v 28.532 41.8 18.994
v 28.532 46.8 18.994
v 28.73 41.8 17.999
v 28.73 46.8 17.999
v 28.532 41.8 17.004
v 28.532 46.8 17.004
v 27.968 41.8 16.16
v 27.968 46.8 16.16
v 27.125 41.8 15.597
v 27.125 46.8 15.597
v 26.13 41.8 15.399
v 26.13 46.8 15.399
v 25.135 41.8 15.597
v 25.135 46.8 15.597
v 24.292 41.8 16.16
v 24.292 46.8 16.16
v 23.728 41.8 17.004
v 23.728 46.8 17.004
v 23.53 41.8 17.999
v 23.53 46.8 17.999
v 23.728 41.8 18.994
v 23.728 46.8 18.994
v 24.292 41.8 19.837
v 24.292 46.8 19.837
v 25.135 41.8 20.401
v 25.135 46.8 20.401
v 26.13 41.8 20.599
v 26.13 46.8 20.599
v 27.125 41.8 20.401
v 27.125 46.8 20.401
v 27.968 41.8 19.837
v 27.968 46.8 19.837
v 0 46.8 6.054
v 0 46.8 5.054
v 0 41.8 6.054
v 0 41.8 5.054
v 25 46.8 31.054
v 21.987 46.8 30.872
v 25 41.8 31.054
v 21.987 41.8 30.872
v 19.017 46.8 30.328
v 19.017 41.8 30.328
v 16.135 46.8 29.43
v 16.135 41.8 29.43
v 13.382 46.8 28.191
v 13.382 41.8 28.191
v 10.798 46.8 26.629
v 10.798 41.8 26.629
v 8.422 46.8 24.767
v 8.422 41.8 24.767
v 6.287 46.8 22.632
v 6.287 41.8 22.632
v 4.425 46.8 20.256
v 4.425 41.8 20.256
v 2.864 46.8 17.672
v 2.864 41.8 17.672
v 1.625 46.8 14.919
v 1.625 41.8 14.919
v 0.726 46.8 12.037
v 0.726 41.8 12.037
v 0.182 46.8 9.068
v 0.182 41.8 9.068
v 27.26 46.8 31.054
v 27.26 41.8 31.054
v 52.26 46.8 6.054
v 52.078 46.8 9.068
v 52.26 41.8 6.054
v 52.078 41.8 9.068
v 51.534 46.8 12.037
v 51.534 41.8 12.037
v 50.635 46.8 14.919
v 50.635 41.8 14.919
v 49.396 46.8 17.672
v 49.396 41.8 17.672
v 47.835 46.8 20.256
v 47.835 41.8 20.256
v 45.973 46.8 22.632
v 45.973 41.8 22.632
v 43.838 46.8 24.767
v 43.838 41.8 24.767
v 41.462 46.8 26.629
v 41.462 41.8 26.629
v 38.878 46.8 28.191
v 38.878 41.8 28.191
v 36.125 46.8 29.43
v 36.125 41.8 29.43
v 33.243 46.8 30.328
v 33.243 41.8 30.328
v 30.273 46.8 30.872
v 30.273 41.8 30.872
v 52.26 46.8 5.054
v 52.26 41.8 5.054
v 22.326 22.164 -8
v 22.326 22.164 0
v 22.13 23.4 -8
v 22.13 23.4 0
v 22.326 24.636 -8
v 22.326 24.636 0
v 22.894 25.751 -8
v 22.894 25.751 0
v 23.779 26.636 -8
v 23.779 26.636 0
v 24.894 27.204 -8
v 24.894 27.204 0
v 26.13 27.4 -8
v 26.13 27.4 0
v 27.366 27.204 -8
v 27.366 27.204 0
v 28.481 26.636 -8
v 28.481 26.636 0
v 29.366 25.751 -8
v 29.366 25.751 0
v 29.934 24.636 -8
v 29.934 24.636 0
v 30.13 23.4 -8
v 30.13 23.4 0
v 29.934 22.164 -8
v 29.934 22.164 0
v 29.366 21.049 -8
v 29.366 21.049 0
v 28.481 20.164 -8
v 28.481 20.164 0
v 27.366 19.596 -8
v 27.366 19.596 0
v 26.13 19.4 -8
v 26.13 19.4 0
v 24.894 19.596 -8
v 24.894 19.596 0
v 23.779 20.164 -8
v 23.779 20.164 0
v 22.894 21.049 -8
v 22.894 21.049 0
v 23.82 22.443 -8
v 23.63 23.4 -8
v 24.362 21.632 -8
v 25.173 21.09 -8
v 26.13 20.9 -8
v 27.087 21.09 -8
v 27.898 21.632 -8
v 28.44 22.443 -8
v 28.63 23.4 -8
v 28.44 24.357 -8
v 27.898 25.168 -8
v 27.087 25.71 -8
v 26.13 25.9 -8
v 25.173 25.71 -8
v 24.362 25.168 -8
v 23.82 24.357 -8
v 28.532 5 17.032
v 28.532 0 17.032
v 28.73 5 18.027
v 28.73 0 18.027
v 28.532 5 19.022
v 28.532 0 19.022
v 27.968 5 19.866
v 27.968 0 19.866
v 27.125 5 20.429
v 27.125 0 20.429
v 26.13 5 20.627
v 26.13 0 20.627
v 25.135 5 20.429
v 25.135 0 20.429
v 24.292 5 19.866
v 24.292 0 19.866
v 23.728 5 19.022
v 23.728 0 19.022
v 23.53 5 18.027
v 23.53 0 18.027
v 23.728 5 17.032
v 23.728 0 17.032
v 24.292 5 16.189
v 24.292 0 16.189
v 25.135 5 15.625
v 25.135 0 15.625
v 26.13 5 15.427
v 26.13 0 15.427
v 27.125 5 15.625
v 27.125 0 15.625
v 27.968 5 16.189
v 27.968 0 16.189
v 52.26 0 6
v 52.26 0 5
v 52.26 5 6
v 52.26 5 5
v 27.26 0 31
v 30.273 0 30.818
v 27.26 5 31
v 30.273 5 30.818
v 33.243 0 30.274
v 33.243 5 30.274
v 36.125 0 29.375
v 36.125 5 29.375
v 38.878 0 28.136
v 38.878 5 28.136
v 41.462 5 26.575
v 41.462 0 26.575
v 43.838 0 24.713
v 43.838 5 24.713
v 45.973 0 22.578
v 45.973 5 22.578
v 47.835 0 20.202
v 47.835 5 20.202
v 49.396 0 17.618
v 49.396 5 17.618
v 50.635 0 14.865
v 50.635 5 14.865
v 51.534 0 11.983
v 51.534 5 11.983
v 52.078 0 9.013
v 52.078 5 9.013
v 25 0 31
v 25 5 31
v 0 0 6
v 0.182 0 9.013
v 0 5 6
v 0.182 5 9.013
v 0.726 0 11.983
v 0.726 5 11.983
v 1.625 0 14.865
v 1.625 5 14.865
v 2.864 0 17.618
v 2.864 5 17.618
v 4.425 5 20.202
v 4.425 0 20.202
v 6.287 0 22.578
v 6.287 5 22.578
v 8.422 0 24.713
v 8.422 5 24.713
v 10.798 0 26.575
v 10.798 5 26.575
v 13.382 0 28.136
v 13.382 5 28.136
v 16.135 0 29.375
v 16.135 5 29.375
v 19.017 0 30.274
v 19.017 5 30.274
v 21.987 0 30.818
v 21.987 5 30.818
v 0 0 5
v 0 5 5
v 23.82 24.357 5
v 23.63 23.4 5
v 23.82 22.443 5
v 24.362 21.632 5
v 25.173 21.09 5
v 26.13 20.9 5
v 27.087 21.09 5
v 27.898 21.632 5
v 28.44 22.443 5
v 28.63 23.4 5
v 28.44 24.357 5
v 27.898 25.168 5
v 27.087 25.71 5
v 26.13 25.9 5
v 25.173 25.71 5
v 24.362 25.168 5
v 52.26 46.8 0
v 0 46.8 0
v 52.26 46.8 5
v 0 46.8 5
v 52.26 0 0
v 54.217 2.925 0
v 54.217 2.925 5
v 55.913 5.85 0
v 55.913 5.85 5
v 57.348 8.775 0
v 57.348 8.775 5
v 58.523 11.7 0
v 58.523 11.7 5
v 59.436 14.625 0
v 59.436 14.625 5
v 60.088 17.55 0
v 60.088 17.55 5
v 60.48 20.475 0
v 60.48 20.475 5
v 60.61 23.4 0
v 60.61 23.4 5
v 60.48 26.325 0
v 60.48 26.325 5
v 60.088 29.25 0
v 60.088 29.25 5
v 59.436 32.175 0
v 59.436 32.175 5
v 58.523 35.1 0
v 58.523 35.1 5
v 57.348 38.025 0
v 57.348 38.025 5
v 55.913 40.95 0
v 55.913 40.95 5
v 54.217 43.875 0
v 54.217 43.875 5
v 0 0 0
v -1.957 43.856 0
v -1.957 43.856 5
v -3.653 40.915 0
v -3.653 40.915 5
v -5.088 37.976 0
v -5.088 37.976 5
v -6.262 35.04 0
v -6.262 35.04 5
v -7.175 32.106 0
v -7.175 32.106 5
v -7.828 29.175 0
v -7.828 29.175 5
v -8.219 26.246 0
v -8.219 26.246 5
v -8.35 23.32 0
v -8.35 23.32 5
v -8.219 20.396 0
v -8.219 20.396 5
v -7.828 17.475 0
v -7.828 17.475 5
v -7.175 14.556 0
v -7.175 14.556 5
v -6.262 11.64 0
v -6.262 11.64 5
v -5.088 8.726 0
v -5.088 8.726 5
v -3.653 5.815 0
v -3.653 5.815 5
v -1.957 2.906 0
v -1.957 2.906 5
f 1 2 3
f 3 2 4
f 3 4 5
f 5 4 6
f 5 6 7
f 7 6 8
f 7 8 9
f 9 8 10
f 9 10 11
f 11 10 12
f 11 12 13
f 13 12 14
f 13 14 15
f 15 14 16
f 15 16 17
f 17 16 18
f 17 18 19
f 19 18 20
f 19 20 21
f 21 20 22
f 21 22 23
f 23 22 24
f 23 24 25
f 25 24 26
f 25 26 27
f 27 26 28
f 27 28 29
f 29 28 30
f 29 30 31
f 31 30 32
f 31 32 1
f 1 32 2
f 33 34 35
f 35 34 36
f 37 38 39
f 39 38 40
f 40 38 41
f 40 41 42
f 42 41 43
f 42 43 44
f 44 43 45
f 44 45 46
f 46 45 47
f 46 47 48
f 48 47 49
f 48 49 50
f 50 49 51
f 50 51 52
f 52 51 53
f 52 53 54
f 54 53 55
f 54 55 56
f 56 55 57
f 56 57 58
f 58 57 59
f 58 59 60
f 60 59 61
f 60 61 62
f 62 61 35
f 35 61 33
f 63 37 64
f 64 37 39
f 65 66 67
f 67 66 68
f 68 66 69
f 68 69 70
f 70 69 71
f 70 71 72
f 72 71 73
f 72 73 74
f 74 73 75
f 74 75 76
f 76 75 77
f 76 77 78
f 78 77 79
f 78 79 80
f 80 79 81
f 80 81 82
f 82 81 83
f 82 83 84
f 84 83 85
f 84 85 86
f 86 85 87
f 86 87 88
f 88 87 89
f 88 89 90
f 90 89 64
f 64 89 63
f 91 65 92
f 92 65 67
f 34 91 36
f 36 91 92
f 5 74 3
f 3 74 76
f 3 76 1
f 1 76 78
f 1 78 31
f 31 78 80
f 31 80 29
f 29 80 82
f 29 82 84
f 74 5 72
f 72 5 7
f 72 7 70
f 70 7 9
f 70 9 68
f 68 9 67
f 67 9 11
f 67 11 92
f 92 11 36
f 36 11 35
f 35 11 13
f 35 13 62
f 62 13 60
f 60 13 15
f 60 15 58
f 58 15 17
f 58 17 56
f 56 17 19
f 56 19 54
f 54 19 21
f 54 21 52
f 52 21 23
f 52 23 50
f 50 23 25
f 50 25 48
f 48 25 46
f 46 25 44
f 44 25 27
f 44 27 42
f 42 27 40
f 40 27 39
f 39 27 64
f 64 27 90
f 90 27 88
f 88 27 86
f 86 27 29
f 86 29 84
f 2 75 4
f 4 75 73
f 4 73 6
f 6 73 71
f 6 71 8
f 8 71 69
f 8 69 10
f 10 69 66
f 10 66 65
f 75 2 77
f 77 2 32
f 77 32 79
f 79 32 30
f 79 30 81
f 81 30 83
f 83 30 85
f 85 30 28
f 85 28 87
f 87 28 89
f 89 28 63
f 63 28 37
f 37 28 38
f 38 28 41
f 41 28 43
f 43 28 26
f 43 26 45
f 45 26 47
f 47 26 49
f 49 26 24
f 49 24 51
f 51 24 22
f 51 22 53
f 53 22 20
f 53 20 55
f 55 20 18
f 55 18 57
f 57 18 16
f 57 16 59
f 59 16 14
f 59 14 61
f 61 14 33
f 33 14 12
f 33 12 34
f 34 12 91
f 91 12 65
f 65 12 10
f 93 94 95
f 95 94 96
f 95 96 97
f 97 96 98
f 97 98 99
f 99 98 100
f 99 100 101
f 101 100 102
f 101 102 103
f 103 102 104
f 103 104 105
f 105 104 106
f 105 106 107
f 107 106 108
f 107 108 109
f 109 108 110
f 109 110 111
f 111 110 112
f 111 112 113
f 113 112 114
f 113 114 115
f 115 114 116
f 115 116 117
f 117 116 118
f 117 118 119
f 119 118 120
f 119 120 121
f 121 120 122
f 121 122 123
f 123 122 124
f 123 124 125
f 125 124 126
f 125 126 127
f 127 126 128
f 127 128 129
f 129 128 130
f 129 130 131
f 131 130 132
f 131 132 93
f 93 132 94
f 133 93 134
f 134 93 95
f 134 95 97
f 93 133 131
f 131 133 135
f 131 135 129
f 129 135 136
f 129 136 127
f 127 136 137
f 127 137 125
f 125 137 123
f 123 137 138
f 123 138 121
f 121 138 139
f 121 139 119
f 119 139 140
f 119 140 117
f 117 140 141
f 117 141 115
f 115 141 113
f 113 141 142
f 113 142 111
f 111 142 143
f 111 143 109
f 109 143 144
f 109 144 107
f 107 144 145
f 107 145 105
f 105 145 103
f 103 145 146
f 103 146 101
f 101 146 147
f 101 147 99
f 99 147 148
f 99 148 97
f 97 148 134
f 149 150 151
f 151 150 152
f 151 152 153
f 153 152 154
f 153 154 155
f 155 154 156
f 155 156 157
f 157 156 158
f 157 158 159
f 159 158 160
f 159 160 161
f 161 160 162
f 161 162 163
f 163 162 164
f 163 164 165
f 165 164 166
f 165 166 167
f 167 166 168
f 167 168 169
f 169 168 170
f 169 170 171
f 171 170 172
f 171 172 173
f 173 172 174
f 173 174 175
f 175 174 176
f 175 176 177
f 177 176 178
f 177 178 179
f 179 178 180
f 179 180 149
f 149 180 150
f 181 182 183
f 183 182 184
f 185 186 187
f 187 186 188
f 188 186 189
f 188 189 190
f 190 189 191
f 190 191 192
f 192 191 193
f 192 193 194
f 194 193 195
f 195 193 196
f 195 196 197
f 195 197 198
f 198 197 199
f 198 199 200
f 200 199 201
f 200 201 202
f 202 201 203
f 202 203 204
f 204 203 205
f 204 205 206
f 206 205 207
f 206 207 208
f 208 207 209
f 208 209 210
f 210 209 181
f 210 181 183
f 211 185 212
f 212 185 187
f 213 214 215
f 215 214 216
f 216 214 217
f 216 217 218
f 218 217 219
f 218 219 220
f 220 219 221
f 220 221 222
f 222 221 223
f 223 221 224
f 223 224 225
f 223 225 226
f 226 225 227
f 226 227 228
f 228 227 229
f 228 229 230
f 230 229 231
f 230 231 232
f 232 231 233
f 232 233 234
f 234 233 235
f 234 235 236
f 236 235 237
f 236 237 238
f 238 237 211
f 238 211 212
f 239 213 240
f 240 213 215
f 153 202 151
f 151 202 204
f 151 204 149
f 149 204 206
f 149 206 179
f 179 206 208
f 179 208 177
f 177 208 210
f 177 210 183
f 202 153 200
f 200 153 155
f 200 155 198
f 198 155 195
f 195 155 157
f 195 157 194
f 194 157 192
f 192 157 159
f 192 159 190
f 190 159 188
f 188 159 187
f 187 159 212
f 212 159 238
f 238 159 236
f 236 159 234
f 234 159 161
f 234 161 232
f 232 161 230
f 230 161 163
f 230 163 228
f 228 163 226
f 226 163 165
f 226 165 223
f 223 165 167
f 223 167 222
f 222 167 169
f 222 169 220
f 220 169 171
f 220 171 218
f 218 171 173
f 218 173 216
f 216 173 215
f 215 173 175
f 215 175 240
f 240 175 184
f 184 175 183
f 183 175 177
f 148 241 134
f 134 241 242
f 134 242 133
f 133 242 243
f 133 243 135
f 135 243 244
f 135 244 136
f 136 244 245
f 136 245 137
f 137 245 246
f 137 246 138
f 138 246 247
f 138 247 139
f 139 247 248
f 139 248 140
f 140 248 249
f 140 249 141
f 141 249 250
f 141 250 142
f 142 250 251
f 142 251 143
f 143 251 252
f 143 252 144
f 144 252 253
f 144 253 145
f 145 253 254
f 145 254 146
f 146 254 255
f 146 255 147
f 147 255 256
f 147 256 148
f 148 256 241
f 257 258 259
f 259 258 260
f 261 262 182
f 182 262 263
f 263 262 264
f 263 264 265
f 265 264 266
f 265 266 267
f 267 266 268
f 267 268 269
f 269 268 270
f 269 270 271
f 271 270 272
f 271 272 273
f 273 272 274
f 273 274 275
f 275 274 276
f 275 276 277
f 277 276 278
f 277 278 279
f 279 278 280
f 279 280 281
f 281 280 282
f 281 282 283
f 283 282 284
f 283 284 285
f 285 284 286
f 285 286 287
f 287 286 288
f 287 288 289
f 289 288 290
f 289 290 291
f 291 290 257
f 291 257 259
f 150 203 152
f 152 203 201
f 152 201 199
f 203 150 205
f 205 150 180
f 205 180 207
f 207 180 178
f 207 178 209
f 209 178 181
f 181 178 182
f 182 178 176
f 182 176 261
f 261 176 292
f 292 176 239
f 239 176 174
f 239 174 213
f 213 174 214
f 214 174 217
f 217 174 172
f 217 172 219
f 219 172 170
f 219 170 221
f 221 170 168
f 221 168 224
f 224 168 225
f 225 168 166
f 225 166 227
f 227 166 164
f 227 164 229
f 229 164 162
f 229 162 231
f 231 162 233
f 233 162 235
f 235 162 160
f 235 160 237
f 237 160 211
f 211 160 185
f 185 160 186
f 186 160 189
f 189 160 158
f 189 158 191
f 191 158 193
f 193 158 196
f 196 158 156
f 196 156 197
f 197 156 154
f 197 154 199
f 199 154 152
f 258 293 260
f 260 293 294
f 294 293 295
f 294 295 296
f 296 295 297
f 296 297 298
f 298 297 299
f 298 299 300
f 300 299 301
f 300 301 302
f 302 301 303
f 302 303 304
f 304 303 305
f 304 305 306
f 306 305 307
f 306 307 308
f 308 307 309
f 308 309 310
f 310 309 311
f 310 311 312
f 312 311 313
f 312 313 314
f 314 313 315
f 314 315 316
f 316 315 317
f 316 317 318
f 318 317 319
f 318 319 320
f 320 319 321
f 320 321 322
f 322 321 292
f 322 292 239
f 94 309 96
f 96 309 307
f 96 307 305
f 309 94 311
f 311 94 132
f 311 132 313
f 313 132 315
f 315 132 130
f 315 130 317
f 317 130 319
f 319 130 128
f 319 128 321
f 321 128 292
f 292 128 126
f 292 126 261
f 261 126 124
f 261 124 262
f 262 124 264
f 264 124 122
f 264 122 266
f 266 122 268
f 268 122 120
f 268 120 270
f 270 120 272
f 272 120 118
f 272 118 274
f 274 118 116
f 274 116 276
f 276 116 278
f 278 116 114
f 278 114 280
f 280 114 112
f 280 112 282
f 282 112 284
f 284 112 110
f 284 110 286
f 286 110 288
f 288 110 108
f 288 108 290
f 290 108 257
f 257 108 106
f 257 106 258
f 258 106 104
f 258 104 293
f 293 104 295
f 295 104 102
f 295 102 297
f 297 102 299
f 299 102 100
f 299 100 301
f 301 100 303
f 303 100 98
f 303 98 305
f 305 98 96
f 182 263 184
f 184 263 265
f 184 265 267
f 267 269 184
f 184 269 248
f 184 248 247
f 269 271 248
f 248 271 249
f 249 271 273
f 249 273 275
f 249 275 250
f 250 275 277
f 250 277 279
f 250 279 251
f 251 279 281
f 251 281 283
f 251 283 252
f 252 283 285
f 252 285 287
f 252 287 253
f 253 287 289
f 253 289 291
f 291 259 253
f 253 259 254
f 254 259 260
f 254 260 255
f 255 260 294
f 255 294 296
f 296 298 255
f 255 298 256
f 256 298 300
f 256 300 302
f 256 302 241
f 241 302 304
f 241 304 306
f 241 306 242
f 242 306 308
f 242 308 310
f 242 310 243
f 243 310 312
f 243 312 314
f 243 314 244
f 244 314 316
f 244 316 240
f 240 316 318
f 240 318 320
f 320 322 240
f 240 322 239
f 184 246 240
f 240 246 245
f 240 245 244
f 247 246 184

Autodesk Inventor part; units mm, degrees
ref_plane "YZ Plane" through (0, 0, 0) normal (1, 0, 0) x (0, 1, 0)
ref_plane "XZ Plane" through (0, 0, 0) normal (0, 1, 0) x (-1, 0, 0)
ref_plane "XY Plane" through (0, 0, 0) normal (0, 0, 1) x (1, 0, 0)
sketch "Esquisse1" plane through (0, 0, 0) normal (0, 0, 1) x (1, 0, 0)
  line L0 (52.26, 46.8) -> (0, 46.8)
  line L1 (0, 0) -> (-16.6992, 23.2396) construction
  line L2 (-16.6992, 23.2396) -> (0, 46.8) construction
  spline S0 degree 2 poles (0, 0) (-16.6992, 23.2396) (0, 46.8) knots 1 1 1 2 2 2
  line L3 (52.26, 46.8) -> (68.96, 23.4) construction
  line L4 (68.96, 23.4) -> (52.26, 0) construction
  spline S1 degree 2 poles (52.26, 46.8) (68.96, 23.4) (52.26, 0) knots 1 1 1 2 2 2
  line L5 (0, 0) -> (52.26, 0)
  point P0 (0, 23.4)
  point P1 (52.26, 23.4)
  point P2 (68.96, 23.4)
  dimension "d0" = 46.8
  dimension "d2" = 16.7
  dimension "d3" = 16.7
extrude "Extrusion1" add sketch "Esquisse1" along normal blind 5
sketch "Esquisse2" plane through (0, 0, 5) normal (0, 0, 1) x (1, 0, 0)
  line L0 (52.26, 46.8) -> (0, 46.8) projected
  line L1 (0, 46.8) -> (52.26, 0)
  line L2 (52.26, 46.8) -> (0, 0)
  circle A0 centre (26.13, 23.4) radius 2.5
  dimension "d6" = 5
extrude "Extrusion2" cut sketch "Esquisse2" against normal blind 5 contours A0 L1 L2 | L2 L1 A0 | L1 L2 A0 | L1 A0 L2
sketch "Esquisse3" plane through (0, 0, 0) normal (0, -1, 0) x (1, 0, 0)
  line L0 (52.26, 5) -> (0, 5) projected
  line L1 (0, 5) -> (52.26, 5)
  line L2 (52.26, 5) -> (52.26, 6)
  line L3 (27.26, 31) -> (25, 31)
  line L4 (0, 6) -> (0, 5)
  arc A0 (25, 31) -> (0, 6) centre (25, 6) ccw
  arc A1 (52.26, 6) -> (27.26, 31) centre (27.26, 6) ccw
  line L5 (0, 5) -> (52.26, 5) projected
  point P0 (0, 0)
  dimension "d10" = 25
  dimension "d11" = 25
  dimension "d12" = 52.26
extrude "Extrusion3" add sketch "Esquisse3" against normal blind 5
sketch "Esquisse5" plane through (0, 46.8, 0) normal (0, 1, 0) x (1, 0, 0)
  line L0 (0, -5.0542) -> (52.26, -5.0542)
  line L1 (52.26, -5.0542) -> (52.26, -6.0542)
  line L2 (27.26, -31.0542) -> (25, -31.0542)
  line L3 (0, -6.0542) -> (0, -5.0542)
  arc A0 (27.26, -31.0542) -> (52.26, -6.0542) centre (27.26, -6.0542) ccw
  arc A1 (0, -6.0542) -> (25, -31.0542) centre (25, -6.0542) ccw
  point P0 (0, 0)
  point P1 (0, -31.0542)
  dimension "d15" = 52.26
  dimension "d16" = 26
  dimension "d17" = 25
extrude "Extrusion4" add sketch "Esquisse5" against normal blind 5
sketch "Esquisse6" plane through (0, 0, 0) normal (0, -1, 0) x (1, 0, 0)
  line L0 (0, 0) -> (0, 5) construction
  line L1 (0, 5.0542) -> (52.26, 5.0542) construction
  line L2 (0, 5.0542) -> (52.26, 31.0542) construction
  line L3 (52.26, 0) -> (52.26, 5) construction
  line L4 (52.26, 5) -> (0, 31.0542) construction
  circle A0 centre (26.13, 18.0271) radius 2.6
  point P0 (27.26, 31.0542)
  dimension "d28" = 5.2
sketch "Esquisse7" plane through (0, 46.8, 0) normal (0, 1, 0) x (1, 0, 0)
  line L0 (29.0305, -30.9433) -> (22.6475, -30.9433) construction
  arc A0 (0, -6.0542) -> (25, -31.0542) centre (25, -6.0542) ccw construction
  line L1 (-16.7657, -30.9433) -> (61.6616, -30.9433) construction
  line L2 (0, -5.0542) -> (52.26, -5.0542) construction
  line L3 (52.26, -5.0542) -> (0, -30.9433) construction
  line L4 (0, -5.0542) -> (52.26, -30.9433) construction
  circle A1 centre (26.13, -17.9988) radius 2.6
  point P0 (0, 0)
  dimension "d24" = 5.2
extrude "Extrusion6" cut sketch "Esquisse7" against normal blind 5
extrude "Extrusion7" cut sketch "Esquisse6" against normal blind 5
sketch "Esquisse8" plane through (0, 0, 0) normal (0, 0, -1) x (-1, 0, 0)
  circle A0 centre (-26.13, 23.4) radius 2.5 projected
  circle A1 centre (-26.13, 23.4) radius 4
  point P0 (0, 0)
  dimension "d31" = 8
extrude "Extrusion8" add sketch "Esquisse8" along normal blind 8
properties part number "Wrist" material "Plastique ABS"
